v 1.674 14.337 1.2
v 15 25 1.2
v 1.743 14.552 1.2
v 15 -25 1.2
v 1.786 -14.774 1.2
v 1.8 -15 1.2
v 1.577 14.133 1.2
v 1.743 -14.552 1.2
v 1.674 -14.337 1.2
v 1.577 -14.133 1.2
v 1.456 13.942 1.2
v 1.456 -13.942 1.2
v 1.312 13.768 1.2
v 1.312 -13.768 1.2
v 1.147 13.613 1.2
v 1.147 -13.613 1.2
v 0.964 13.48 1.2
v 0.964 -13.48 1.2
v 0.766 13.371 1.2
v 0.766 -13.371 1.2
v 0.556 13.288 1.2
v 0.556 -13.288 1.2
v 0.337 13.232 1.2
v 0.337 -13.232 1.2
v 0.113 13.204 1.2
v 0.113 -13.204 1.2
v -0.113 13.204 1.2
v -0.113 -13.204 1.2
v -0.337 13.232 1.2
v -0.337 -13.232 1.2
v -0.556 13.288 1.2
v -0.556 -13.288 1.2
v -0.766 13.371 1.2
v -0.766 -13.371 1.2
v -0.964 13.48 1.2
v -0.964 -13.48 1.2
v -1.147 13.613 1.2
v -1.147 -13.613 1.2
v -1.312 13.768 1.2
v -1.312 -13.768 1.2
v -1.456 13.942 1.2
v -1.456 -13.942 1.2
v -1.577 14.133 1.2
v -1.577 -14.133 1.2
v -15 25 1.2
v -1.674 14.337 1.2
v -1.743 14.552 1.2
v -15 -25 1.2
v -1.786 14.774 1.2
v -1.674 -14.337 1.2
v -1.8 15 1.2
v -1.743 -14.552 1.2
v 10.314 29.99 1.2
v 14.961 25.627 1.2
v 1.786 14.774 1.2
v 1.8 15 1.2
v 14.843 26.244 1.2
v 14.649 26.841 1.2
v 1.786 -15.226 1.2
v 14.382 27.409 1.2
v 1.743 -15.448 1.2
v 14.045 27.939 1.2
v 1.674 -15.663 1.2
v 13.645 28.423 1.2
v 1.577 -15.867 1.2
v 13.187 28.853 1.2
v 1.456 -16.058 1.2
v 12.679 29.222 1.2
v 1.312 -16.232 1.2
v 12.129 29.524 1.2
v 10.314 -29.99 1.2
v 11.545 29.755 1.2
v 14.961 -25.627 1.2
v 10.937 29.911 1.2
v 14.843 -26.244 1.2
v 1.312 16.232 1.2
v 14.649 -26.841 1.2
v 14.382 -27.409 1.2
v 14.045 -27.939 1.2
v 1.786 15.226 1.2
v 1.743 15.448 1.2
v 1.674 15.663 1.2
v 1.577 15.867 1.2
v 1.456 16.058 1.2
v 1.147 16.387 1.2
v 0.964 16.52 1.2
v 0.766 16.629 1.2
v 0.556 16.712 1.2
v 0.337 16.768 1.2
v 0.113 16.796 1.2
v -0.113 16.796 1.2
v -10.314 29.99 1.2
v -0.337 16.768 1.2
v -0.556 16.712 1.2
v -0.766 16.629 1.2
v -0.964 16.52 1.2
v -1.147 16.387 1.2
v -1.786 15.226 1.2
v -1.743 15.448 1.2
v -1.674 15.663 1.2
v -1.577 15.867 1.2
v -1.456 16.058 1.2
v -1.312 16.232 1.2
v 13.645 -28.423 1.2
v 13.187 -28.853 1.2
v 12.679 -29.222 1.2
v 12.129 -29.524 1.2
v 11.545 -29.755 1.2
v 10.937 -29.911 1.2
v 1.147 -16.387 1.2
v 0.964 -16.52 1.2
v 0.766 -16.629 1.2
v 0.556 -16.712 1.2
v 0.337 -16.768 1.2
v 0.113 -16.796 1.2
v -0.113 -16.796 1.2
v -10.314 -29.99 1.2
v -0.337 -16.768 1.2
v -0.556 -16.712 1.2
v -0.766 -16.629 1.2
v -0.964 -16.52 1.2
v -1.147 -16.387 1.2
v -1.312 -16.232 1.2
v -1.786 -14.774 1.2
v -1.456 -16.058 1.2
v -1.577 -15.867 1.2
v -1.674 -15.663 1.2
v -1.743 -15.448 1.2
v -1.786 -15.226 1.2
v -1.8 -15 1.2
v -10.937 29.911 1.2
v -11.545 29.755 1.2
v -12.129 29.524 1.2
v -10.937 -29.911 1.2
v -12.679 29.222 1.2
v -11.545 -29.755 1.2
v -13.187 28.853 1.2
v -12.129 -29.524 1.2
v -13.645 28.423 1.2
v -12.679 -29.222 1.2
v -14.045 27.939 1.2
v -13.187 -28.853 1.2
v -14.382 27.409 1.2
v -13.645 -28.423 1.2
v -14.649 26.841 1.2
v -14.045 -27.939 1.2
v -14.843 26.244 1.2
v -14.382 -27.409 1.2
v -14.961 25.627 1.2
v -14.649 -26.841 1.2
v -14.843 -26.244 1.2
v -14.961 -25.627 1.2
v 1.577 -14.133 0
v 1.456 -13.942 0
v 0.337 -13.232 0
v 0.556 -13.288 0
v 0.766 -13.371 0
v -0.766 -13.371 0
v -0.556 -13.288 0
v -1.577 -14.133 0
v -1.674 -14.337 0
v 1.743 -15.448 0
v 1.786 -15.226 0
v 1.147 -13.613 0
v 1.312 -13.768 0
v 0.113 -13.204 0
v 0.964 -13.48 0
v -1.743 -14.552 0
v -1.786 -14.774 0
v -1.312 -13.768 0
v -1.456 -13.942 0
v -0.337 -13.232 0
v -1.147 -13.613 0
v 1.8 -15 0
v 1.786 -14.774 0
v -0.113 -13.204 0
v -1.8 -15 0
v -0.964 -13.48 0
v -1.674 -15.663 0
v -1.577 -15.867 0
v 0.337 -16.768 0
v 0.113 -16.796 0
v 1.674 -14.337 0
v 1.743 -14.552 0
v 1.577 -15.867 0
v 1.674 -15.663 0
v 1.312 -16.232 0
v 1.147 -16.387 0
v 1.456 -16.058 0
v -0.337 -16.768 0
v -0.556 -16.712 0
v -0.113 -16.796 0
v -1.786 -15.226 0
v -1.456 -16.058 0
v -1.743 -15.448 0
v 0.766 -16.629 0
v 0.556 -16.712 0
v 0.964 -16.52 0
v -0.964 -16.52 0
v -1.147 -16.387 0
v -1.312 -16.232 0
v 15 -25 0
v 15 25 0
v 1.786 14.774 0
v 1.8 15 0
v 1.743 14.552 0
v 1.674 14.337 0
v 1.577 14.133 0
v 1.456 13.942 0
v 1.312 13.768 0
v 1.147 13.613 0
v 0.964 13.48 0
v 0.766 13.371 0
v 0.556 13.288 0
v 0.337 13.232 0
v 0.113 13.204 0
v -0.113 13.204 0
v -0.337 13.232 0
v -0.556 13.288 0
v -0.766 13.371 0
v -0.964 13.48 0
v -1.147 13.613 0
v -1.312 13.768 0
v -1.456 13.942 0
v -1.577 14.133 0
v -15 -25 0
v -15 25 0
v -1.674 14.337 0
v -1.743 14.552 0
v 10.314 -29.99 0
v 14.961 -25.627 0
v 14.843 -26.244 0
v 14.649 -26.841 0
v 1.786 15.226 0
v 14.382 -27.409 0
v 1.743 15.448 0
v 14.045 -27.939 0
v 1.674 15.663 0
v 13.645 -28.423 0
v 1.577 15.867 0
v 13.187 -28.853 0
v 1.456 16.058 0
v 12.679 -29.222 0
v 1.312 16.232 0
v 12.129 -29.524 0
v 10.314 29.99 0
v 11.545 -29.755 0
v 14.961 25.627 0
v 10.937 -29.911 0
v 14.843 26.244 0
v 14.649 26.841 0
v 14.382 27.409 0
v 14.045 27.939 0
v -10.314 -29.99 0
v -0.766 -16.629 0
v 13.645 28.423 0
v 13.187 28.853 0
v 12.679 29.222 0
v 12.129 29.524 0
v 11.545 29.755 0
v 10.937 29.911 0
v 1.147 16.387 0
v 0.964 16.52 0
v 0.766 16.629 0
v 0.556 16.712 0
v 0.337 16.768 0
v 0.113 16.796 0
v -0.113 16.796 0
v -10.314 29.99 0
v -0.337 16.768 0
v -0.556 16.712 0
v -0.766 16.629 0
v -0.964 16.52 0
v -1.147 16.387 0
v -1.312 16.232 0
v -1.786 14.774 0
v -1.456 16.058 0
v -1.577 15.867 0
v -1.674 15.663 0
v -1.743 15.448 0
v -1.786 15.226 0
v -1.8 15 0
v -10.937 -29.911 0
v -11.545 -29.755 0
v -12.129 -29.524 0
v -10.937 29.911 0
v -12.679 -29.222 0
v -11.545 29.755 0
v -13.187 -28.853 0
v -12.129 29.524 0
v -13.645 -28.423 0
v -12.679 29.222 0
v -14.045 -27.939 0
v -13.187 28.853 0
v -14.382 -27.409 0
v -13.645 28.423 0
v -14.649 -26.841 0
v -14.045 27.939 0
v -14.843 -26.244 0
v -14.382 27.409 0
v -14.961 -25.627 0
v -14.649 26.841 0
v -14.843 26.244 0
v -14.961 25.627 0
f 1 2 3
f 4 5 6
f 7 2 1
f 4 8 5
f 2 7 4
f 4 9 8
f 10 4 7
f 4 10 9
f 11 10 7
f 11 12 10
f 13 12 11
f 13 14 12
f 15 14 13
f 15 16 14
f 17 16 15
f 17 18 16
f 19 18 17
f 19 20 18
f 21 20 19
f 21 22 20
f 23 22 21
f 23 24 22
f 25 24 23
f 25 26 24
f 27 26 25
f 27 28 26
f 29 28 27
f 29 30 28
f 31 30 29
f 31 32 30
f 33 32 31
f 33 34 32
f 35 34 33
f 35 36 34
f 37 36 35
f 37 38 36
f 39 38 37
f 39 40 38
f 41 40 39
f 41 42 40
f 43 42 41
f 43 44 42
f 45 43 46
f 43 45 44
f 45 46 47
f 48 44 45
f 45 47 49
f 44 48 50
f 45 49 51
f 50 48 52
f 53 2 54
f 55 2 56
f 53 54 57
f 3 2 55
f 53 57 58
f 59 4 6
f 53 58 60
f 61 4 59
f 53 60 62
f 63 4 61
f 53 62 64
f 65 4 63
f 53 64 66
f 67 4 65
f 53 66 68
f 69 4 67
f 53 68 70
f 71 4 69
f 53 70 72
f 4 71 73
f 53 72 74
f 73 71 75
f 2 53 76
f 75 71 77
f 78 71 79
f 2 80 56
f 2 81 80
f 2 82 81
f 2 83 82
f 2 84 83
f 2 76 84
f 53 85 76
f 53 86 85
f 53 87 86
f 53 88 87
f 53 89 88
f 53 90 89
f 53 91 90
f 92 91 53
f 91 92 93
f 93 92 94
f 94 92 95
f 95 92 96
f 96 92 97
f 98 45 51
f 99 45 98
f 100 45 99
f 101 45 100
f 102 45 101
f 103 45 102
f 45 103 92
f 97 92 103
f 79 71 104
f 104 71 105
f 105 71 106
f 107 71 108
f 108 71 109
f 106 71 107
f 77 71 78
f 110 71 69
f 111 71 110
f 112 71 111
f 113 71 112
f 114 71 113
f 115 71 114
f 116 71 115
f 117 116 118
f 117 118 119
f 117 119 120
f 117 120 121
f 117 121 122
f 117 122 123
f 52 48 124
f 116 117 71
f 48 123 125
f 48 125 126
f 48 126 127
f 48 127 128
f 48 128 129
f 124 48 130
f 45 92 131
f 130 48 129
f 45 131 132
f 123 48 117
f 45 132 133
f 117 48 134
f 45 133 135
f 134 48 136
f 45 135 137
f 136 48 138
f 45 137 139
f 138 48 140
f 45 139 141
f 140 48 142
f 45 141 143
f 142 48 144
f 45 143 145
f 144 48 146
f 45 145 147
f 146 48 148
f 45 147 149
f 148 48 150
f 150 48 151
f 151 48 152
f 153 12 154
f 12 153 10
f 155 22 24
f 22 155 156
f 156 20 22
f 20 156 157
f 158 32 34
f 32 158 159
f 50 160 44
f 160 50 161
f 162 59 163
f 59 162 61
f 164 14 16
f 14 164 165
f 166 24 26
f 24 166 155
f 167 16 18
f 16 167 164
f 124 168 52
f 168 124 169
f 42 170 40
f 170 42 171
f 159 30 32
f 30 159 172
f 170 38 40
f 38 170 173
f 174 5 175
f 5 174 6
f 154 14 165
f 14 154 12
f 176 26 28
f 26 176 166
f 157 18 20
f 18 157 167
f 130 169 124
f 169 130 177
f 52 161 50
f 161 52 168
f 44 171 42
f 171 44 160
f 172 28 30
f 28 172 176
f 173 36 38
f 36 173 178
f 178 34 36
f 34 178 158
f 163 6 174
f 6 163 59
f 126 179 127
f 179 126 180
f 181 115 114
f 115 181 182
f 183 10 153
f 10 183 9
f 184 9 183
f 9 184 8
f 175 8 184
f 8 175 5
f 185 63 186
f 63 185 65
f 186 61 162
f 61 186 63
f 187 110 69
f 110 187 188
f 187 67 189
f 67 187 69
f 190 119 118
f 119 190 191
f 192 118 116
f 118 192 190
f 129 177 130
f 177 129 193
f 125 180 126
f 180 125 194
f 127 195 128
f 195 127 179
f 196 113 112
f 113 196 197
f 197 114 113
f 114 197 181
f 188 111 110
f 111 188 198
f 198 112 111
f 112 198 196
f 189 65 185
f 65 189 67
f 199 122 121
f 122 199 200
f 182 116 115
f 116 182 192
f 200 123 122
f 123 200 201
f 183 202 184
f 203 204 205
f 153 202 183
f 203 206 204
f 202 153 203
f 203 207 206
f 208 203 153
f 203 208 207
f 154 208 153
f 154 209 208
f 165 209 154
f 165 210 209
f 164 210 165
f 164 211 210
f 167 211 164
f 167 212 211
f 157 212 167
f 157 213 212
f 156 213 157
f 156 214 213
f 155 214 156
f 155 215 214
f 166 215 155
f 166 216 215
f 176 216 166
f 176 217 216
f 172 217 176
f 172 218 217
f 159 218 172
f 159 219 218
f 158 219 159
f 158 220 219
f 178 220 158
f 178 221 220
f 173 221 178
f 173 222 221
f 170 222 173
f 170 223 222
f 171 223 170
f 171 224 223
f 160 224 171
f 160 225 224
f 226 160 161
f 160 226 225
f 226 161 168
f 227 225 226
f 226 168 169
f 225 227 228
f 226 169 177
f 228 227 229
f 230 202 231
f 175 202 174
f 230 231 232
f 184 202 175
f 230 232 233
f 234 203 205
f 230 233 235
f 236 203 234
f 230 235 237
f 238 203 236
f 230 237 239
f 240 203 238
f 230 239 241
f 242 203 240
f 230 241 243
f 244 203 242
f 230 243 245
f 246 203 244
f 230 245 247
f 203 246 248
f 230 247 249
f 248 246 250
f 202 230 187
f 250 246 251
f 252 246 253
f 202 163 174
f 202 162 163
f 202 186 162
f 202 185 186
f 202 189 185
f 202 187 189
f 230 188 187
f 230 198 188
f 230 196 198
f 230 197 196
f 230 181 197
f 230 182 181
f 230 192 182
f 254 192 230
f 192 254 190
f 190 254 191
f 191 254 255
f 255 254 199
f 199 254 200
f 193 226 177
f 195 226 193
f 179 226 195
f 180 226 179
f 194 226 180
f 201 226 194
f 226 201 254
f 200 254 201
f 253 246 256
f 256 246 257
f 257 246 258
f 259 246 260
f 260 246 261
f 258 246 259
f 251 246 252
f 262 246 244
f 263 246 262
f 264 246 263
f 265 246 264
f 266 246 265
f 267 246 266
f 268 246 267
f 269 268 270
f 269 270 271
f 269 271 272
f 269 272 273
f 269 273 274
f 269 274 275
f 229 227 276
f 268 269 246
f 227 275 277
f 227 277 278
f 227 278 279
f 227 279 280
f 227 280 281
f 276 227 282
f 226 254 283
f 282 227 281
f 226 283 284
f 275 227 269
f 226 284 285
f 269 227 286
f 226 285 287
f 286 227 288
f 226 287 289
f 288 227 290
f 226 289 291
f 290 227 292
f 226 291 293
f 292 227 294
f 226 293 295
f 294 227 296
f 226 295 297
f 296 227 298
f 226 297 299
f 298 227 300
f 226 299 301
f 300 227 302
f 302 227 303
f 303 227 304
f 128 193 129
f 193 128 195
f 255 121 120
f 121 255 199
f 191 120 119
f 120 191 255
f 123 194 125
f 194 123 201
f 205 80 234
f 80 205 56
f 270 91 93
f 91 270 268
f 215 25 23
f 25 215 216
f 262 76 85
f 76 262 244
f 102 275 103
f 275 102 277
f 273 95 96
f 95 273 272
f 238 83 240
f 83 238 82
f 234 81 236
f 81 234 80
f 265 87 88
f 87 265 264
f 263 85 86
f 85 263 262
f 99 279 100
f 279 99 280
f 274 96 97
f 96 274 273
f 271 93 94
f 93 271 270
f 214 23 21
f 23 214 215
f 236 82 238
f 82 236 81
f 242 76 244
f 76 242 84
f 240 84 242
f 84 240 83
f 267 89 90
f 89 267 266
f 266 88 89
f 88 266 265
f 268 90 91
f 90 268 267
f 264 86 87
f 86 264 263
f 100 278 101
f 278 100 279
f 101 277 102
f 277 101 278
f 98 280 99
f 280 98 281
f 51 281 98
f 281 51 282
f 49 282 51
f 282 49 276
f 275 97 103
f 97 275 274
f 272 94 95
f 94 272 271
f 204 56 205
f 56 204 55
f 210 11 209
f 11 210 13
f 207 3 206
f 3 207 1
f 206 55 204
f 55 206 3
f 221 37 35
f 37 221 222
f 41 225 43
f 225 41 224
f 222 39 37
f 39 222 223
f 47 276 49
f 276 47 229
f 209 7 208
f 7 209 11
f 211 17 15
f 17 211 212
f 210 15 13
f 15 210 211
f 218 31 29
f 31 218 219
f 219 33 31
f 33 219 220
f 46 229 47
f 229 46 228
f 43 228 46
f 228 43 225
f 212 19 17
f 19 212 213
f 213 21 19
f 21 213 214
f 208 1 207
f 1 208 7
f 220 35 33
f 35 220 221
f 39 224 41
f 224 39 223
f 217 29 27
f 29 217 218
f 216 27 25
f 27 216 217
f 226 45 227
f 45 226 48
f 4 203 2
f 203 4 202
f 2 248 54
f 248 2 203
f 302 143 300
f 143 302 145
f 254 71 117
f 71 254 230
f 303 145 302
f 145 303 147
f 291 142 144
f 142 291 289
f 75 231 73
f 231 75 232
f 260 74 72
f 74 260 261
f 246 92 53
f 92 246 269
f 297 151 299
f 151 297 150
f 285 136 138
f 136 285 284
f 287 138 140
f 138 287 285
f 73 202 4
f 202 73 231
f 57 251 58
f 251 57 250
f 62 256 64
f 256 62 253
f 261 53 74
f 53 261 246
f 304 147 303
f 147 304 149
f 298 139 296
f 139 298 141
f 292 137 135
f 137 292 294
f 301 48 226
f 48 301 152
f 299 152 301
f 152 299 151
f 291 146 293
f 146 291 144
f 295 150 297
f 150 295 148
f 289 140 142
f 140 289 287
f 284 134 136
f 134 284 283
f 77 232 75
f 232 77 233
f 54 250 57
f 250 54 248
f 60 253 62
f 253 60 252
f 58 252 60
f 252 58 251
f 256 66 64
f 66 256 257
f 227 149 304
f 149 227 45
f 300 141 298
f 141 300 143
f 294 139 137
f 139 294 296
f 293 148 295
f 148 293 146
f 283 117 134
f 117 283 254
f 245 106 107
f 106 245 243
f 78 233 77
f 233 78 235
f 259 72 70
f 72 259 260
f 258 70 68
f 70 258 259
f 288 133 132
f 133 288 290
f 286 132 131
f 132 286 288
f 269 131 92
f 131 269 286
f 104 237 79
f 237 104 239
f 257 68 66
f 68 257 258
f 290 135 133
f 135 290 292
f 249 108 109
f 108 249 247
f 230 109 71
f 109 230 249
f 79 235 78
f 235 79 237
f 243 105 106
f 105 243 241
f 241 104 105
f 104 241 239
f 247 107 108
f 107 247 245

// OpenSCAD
$fn = 50;


difference() {
	union() {
		hull() {
			translate(v = [-10.0000000000, 25.0000000000, 0]) {
				cylinder(h = 60, r = 5);
			}
			translate(v = [10.0000000000, 25.0000000000, 0]) {
				cylinder(h = 60, r = 5);
			}
			translate(v = [-10.0000000000, -25.0000000000, 0]) {
				cylinder(h = 60, r = 5);
			}
			translate(v = [10.0000000000, -25.0000000000, 0]) {
				cylinder(h = 60, r = 5);
			}
		}
	}
	union() {
		translate(v = [0, 0, 1.2000000000]) {
			hull() {
				translate(v = [-10.0000000000, 25.0000000000, 0]) {
					cylinder(h = 58.8000000000, r = 3.8000000000);
				}
				translate(v = [10.0000000000, 25.0000000000, 0]) {
					cylinder(h = 58.8000000000, r = 3.8000000000);
				}
				translate(v = [-10.0000000000, -25.0000000000, 0]) {
					cylinder(h = 58.8000000000, r = 3.8000000000);
				}
				translate(v = [10.0000000000, -25.0000000000, 0]) {
					cylinder(h = 58.8000000000, r = 3.8000000000);
				}
			}
		}
		#translate(v = [0.0000000000, -15.0000000000, 0]) {
			cylinder(h = 1.2000000000, r = 1.8000000000);
		}
		#translate(v = [0.0000000000, 15.0000000000, 0]) {
			cylinder(h = 1.2000000000, r = 1.8000000000);
		}
		translate(v = [-250.0000000000, -250.0000000000, 1.2000000000]) {
			cube(size = [500, 500, 500]);
		}
		translate(v = [-250.0000000000, -250.0000000000, 1.2000000000]) {
			cube(size = [500, 500, 500]);
		}
		translate(v = [-250.0000000000, -250.0000000000, 1.2000000000]) {
			cube(size = [500, 500, 500]);
		}
	}
}
